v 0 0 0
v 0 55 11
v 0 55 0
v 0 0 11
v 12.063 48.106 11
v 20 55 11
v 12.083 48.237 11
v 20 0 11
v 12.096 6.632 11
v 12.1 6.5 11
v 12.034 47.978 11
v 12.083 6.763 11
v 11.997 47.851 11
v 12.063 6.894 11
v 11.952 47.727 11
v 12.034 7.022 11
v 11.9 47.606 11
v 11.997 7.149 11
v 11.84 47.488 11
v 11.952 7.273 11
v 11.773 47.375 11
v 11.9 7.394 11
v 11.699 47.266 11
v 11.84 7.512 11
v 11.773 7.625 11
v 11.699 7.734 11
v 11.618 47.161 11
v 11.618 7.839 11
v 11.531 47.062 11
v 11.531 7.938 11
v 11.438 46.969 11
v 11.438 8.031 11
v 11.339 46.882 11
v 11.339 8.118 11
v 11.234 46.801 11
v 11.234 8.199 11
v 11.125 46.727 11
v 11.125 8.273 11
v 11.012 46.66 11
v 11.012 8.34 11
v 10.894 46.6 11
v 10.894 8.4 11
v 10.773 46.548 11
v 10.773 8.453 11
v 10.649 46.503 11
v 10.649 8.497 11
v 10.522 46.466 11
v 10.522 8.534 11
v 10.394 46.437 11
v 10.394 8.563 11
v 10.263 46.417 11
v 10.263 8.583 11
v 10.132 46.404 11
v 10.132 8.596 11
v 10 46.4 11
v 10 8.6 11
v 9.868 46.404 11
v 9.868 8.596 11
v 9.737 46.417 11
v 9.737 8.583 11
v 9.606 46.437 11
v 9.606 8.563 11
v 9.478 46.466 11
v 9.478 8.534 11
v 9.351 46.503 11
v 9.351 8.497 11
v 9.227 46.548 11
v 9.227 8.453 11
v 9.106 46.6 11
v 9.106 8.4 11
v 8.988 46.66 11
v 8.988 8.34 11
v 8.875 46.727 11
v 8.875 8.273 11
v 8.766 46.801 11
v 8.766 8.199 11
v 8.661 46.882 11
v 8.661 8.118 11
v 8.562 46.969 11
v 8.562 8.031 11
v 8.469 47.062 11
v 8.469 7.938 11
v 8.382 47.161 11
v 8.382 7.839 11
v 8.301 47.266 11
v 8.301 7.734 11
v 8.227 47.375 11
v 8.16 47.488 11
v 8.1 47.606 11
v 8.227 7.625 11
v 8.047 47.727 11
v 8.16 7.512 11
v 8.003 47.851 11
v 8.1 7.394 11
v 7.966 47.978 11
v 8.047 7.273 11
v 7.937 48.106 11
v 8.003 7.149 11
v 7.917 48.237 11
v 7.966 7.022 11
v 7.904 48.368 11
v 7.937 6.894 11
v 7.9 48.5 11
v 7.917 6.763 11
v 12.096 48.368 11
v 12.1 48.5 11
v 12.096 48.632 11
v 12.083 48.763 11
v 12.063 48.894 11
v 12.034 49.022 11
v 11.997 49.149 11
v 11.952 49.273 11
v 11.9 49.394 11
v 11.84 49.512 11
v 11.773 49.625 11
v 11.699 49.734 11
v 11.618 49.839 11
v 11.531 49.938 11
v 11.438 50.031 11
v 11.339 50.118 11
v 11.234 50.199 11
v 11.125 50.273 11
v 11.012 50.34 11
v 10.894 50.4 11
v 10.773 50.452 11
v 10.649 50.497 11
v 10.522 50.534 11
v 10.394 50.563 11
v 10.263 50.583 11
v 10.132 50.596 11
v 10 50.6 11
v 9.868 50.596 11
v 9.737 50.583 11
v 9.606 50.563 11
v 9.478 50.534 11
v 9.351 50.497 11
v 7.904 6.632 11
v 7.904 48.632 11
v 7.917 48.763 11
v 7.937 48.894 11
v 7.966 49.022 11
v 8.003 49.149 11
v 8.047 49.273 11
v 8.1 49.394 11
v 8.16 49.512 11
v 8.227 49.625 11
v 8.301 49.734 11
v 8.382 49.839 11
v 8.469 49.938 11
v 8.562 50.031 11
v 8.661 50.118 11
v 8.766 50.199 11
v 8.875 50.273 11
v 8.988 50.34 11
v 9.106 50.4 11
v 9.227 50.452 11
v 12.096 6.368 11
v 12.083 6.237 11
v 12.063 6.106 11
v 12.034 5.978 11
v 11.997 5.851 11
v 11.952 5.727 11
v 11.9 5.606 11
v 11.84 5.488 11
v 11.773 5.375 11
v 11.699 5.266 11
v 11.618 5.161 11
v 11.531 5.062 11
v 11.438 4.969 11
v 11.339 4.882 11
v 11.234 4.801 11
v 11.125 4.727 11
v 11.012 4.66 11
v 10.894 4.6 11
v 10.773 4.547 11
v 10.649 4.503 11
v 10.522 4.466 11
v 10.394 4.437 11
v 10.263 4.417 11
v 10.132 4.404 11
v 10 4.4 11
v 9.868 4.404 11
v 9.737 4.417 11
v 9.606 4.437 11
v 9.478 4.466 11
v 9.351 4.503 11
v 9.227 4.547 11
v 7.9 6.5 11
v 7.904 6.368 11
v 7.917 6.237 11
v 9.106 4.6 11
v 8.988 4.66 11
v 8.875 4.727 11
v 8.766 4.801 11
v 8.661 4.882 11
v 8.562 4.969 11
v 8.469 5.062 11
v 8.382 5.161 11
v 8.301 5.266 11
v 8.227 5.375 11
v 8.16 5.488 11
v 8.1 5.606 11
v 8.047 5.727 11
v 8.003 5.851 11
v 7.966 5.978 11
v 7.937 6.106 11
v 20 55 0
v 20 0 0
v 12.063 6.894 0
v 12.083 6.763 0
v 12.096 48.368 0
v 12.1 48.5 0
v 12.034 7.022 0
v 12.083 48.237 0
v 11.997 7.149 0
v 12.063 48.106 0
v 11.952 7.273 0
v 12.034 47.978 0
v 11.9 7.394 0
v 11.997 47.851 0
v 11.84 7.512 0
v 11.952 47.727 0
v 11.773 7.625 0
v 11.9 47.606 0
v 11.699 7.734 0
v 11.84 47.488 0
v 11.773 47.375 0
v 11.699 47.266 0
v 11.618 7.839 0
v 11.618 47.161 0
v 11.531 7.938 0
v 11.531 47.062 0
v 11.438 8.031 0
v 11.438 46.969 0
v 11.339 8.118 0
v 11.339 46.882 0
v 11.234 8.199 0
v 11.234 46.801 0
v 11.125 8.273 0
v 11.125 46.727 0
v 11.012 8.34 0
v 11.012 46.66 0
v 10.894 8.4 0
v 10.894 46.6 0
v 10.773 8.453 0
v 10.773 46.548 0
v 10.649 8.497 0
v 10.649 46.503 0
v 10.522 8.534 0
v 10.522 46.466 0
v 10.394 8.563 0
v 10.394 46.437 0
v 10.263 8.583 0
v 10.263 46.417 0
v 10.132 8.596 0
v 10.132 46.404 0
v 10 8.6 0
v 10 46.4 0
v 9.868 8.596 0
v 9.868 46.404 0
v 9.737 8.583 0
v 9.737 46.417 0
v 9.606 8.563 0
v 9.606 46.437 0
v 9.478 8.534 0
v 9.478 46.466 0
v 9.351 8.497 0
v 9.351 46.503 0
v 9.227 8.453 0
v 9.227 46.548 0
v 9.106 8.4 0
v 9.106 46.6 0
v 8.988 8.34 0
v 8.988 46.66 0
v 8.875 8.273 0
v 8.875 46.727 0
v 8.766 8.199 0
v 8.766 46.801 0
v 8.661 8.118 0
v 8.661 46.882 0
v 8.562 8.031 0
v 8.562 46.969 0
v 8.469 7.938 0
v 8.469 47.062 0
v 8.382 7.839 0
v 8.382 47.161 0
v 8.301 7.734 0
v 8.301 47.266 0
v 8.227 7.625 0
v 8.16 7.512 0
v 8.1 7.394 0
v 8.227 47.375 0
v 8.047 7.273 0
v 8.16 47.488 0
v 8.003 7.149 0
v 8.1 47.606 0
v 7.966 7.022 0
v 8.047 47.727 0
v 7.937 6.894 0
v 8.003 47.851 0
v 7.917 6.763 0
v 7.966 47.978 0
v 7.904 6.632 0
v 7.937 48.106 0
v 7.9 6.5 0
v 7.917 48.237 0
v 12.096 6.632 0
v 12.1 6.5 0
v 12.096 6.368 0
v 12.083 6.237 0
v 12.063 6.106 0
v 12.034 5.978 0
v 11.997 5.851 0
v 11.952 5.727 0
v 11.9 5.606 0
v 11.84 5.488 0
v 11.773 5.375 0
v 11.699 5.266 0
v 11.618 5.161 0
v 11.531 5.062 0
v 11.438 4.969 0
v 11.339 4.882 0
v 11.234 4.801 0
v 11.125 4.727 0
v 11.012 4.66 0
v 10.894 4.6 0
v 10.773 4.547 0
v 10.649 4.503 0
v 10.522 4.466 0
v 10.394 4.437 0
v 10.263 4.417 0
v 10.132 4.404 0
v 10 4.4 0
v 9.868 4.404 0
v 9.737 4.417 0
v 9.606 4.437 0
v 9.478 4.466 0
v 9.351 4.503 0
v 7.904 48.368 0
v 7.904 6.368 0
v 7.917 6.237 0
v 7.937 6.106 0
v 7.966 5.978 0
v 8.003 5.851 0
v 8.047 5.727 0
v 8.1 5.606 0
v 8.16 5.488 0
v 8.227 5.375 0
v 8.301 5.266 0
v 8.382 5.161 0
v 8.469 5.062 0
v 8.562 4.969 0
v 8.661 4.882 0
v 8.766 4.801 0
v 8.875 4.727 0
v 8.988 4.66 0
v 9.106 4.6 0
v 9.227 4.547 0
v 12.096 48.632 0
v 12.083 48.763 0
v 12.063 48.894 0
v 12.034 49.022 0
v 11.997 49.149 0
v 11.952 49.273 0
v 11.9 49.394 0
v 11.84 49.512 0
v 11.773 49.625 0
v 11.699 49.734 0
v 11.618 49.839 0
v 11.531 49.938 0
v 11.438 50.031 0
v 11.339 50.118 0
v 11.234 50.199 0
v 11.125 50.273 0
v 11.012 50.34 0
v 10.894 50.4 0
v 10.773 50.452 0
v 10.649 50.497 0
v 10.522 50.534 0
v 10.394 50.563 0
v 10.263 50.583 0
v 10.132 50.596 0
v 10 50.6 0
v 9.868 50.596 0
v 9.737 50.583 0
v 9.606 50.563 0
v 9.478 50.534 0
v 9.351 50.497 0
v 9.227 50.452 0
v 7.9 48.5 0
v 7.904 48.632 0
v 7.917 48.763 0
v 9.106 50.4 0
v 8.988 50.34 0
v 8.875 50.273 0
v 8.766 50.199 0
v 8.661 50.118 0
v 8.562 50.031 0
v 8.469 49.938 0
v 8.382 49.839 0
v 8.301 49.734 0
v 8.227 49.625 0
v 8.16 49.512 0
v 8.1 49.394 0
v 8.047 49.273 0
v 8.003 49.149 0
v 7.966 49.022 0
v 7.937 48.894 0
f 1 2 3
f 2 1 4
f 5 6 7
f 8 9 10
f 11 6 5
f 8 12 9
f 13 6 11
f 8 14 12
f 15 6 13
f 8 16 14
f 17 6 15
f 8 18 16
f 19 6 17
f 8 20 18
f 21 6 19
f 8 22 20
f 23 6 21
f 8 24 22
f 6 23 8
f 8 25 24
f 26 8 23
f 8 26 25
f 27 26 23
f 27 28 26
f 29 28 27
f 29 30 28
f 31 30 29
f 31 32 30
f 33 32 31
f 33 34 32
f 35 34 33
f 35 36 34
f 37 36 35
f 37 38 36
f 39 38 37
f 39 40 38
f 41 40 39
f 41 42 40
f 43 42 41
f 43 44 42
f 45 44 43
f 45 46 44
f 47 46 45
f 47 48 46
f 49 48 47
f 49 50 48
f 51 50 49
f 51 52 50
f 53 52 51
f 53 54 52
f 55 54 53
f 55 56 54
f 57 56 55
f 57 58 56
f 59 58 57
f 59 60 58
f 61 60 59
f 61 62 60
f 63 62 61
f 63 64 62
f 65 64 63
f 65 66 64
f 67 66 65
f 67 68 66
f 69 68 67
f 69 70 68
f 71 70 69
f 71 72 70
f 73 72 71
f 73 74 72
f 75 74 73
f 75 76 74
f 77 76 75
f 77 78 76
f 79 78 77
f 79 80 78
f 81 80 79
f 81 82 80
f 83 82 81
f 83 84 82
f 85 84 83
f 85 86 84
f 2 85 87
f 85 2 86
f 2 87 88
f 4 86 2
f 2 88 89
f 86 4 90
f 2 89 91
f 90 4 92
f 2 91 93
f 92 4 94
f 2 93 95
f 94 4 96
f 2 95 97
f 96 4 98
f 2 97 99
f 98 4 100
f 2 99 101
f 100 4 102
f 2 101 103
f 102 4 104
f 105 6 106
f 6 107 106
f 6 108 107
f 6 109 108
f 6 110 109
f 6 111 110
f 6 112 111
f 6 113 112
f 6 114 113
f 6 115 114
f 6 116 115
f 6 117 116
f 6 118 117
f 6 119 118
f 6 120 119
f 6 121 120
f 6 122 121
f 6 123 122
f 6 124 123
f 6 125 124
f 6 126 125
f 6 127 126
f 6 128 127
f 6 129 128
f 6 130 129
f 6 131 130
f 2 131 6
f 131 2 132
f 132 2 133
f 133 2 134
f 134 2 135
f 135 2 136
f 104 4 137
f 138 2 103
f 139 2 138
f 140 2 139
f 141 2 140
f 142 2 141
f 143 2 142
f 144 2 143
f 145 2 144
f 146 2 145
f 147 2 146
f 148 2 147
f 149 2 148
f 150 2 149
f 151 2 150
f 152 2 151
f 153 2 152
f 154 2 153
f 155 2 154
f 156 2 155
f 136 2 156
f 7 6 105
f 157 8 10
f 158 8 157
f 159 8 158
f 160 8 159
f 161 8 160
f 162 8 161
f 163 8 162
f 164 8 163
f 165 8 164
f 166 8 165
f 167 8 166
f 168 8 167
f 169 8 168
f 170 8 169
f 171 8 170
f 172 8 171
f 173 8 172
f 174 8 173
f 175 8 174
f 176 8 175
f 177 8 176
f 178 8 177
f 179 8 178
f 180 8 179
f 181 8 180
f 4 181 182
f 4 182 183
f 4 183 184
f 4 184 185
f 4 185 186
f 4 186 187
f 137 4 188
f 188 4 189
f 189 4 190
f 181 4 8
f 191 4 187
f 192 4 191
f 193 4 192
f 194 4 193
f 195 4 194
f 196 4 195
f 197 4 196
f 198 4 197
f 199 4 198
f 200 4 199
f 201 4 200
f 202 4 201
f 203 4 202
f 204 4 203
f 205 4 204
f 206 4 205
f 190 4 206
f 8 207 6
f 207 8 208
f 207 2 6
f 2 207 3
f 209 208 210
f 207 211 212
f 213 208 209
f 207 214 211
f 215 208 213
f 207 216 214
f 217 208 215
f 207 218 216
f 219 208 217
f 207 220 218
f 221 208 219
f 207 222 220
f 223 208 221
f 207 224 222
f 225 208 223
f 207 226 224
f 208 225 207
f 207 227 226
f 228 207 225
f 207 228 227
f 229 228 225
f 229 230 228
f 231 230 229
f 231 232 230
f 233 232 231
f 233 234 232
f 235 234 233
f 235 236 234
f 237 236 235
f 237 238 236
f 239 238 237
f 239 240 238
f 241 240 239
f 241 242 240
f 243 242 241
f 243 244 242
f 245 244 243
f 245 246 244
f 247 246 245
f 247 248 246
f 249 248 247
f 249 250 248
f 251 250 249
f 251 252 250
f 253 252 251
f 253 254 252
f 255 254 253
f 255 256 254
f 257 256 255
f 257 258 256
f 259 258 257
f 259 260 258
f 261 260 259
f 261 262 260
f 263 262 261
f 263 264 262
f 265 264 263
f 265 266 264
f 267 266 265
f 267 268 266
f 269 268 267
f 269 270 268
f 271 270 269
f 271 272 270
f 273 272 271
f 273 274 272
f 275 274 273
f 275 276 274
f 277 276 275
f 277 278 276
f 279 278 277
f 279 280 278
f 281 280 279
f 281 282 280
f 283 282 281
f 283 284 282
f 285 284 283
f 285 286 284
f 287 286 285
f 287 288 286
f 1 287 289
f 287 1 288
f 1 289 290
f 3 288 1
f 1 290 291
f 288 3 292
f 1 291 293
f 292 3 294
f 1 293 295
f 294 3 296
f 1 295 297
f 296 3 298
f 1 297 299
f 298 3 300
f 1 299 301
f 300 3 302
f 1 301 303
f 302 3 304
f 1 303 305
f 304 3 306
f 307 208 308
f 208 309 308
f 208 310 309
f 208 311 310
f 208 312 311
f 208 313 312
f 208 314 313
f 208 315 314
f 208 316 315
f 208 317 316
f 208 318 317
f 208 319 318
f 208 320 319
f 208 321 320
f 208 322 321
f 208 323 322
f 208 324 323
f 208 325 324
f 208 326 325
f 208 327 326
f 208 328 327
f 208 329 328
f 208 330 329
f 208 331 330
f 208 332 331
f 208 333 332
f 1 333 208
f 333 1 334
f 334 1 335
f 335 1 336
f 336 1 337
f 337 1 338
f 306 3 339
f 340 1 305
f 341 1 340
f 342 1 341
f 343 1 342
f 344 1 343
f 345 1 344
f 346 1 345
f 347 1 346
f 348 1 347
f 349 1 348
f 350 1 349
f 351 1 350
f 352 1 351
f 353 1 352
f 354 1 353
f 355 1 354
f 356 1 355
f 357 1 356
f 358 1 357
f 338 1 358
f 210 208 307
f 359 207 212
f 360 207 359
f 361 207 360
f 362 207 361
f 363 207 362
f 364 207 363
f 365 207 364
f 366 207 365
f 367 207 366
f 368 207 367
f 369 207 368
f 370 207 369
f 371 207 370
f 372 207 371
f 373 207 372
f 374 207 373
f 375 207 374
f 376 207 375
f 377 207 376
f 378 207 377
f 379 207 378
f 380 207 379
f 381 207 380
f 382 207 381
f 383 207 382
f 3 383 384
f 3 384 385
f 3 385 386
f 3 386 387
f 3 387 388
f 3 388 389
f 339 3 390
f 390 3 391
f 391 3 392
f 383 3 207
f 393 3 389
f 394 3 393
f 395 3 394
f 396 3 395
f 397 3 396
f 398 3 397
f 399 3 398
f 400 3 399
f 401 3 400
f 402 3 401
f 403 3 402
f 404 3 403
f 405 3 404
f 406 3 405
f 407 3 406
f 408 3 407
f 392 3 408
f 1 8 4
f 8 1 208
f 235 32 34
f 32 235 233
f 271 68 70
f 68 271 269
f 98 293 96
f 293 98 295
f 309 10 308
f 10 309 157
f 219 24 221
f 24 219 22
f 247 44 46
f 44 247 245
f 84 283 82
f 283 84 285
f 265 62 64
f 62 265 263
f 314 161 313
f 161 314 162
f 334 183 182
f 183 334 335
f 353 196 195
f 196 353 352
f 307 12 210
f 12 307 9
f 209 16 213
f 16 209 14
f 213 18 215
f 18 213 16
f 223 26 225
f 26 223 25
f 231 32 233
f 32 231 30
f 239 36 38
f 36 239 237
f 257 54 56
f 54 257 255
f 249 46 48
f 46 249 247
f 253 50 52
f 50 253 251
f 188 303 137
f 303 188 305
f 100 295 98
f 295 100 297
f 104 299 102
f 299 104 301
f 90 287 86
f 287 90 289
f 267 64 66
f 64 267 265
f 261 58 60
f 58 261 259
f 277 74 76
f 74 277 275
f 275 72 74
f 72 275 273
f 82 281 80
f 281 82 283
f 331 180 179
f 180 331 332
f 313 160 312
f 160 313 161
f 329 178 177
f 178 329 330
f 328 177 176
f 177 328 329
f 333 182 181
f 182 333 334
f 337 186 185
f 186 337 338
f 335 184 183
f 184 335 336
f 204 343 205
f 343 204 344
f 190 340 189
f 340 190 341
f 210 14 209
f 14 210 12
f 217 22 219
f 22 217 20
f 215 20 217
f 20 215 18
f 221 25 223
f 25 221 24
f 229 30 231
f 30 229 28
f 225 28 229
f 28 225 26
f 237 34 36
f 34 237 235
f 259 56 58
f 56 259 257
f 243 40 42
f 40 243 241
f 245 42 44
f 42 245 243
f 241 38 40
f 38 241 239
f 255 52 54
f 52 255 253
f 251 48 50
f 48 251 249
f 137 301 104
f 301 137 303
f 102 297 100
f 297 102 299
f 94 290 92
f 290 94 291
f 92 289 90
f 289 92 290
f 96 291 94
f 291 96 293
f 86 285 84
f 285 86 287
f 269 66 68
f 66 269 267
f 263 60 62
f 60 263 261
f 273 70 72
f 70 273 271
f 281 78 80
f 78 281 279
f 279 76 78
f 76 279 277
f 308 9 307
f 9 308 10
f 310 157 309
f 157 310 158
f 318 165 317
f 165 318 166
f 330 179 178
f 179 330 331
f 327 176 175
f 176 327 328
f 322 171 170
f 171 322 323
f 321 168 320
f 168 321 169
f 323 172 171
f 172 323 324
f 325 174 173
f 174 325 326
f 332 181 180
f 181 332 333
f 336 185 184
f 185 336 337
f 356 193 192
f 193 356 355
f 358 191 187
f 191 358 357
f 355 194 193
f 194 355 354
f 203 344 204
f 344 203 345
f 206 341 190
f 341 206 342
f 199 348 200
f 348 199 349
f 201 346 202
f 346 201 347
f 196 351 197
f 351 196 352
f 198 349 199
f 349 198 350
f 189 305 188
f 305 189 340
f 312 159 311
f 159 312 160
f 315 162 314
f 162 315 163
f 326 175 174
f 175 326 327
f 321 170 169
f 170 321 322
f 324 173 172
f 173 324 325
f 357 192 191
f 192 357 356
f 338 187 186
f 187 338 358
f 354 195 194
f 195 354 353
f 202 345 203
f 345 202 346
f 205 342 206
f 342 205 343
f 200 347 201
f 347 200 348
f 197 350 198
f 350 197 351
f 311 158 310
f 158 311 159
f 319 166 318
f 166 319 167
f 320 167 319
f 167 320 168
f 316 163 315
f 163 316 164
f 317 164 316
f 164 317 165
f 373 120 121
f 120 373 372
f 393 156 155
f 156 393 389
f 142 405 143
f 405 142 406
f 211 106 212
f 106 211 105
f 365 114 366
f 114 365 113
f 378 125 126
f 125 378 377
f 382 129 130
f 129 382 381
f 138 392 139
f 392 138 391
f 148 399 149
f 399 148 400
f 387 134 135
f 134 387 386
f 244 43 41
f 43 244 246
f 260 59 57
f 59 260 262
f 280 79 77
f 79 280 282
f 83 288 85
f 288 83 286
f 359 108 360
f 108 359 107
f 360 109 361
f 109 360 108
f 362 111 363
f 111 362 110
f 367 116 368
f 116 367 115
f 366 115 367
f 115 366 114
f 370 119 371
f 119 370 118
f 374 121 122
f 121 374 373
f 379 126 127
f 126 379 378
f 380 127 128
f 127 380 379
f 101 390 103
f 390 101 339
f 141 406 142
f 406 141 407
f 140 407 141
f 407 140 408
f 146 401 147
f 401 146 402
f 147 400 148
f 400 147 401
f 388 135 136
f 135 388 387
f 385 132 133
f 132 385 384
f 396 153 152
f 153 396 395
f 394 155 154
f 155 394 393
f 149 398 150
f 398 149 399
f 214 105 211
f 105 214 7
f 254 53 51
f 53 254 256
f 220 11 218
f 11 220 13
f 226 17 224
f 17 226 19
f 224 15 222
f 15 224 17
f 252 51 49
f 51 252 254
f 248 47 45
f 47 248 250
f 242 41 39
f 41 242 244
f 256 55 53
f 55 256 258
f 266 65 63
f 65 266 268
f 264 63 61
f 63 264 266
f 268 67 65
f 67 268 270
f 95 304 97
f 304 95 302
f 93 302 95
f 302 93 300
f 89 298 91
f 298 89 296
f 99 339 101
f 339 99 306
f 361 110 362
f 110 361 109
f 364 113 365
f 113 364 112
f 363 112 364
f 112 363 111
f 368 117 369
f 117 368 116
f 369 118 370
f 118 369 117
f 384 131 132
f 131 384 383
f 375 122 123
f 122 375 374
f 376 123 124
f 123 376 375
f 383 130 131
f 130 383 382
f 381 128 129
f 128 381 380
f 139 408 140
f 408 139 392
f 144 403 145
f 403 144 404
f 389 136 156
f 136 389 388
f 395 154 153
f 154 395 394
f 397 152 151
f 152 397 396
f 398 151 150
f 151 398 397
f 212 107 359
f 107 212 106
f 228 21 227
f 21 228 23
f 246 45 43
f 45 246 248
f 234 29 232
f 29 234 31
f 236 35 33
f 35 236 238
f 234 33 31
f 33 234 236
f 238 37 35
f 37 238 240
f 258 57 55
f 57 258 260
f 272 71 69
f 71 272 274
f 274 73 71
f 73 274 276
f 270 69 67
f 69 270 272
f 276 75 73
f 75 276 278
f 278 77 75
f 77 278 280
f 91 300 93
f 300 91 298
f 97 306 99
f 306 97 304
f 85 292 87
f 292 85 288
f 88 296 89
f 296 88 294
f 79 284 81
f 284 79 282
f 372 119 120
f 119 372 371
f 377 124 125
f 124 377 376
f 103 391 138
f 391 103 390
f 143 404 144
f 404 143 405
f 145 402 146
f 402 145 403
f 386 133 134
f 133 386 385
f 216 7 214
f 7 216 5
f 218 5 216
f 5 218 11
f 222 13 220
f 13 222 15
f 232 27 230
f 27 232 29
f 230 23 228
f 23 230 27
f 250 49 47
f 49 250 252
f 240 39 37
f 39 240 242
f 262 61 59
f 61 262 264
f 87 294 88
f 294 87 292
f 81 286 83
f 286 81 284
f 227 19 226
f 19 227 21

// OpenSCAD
$fn=100;
difference(){
    cube([20,55,11]);
    translate([10,(55-42)/2,0])cylinder(r=2.1,h=12);
    translate([10,55-(55-42)/2,0])cylinder(r=2.1,h=12);
}
